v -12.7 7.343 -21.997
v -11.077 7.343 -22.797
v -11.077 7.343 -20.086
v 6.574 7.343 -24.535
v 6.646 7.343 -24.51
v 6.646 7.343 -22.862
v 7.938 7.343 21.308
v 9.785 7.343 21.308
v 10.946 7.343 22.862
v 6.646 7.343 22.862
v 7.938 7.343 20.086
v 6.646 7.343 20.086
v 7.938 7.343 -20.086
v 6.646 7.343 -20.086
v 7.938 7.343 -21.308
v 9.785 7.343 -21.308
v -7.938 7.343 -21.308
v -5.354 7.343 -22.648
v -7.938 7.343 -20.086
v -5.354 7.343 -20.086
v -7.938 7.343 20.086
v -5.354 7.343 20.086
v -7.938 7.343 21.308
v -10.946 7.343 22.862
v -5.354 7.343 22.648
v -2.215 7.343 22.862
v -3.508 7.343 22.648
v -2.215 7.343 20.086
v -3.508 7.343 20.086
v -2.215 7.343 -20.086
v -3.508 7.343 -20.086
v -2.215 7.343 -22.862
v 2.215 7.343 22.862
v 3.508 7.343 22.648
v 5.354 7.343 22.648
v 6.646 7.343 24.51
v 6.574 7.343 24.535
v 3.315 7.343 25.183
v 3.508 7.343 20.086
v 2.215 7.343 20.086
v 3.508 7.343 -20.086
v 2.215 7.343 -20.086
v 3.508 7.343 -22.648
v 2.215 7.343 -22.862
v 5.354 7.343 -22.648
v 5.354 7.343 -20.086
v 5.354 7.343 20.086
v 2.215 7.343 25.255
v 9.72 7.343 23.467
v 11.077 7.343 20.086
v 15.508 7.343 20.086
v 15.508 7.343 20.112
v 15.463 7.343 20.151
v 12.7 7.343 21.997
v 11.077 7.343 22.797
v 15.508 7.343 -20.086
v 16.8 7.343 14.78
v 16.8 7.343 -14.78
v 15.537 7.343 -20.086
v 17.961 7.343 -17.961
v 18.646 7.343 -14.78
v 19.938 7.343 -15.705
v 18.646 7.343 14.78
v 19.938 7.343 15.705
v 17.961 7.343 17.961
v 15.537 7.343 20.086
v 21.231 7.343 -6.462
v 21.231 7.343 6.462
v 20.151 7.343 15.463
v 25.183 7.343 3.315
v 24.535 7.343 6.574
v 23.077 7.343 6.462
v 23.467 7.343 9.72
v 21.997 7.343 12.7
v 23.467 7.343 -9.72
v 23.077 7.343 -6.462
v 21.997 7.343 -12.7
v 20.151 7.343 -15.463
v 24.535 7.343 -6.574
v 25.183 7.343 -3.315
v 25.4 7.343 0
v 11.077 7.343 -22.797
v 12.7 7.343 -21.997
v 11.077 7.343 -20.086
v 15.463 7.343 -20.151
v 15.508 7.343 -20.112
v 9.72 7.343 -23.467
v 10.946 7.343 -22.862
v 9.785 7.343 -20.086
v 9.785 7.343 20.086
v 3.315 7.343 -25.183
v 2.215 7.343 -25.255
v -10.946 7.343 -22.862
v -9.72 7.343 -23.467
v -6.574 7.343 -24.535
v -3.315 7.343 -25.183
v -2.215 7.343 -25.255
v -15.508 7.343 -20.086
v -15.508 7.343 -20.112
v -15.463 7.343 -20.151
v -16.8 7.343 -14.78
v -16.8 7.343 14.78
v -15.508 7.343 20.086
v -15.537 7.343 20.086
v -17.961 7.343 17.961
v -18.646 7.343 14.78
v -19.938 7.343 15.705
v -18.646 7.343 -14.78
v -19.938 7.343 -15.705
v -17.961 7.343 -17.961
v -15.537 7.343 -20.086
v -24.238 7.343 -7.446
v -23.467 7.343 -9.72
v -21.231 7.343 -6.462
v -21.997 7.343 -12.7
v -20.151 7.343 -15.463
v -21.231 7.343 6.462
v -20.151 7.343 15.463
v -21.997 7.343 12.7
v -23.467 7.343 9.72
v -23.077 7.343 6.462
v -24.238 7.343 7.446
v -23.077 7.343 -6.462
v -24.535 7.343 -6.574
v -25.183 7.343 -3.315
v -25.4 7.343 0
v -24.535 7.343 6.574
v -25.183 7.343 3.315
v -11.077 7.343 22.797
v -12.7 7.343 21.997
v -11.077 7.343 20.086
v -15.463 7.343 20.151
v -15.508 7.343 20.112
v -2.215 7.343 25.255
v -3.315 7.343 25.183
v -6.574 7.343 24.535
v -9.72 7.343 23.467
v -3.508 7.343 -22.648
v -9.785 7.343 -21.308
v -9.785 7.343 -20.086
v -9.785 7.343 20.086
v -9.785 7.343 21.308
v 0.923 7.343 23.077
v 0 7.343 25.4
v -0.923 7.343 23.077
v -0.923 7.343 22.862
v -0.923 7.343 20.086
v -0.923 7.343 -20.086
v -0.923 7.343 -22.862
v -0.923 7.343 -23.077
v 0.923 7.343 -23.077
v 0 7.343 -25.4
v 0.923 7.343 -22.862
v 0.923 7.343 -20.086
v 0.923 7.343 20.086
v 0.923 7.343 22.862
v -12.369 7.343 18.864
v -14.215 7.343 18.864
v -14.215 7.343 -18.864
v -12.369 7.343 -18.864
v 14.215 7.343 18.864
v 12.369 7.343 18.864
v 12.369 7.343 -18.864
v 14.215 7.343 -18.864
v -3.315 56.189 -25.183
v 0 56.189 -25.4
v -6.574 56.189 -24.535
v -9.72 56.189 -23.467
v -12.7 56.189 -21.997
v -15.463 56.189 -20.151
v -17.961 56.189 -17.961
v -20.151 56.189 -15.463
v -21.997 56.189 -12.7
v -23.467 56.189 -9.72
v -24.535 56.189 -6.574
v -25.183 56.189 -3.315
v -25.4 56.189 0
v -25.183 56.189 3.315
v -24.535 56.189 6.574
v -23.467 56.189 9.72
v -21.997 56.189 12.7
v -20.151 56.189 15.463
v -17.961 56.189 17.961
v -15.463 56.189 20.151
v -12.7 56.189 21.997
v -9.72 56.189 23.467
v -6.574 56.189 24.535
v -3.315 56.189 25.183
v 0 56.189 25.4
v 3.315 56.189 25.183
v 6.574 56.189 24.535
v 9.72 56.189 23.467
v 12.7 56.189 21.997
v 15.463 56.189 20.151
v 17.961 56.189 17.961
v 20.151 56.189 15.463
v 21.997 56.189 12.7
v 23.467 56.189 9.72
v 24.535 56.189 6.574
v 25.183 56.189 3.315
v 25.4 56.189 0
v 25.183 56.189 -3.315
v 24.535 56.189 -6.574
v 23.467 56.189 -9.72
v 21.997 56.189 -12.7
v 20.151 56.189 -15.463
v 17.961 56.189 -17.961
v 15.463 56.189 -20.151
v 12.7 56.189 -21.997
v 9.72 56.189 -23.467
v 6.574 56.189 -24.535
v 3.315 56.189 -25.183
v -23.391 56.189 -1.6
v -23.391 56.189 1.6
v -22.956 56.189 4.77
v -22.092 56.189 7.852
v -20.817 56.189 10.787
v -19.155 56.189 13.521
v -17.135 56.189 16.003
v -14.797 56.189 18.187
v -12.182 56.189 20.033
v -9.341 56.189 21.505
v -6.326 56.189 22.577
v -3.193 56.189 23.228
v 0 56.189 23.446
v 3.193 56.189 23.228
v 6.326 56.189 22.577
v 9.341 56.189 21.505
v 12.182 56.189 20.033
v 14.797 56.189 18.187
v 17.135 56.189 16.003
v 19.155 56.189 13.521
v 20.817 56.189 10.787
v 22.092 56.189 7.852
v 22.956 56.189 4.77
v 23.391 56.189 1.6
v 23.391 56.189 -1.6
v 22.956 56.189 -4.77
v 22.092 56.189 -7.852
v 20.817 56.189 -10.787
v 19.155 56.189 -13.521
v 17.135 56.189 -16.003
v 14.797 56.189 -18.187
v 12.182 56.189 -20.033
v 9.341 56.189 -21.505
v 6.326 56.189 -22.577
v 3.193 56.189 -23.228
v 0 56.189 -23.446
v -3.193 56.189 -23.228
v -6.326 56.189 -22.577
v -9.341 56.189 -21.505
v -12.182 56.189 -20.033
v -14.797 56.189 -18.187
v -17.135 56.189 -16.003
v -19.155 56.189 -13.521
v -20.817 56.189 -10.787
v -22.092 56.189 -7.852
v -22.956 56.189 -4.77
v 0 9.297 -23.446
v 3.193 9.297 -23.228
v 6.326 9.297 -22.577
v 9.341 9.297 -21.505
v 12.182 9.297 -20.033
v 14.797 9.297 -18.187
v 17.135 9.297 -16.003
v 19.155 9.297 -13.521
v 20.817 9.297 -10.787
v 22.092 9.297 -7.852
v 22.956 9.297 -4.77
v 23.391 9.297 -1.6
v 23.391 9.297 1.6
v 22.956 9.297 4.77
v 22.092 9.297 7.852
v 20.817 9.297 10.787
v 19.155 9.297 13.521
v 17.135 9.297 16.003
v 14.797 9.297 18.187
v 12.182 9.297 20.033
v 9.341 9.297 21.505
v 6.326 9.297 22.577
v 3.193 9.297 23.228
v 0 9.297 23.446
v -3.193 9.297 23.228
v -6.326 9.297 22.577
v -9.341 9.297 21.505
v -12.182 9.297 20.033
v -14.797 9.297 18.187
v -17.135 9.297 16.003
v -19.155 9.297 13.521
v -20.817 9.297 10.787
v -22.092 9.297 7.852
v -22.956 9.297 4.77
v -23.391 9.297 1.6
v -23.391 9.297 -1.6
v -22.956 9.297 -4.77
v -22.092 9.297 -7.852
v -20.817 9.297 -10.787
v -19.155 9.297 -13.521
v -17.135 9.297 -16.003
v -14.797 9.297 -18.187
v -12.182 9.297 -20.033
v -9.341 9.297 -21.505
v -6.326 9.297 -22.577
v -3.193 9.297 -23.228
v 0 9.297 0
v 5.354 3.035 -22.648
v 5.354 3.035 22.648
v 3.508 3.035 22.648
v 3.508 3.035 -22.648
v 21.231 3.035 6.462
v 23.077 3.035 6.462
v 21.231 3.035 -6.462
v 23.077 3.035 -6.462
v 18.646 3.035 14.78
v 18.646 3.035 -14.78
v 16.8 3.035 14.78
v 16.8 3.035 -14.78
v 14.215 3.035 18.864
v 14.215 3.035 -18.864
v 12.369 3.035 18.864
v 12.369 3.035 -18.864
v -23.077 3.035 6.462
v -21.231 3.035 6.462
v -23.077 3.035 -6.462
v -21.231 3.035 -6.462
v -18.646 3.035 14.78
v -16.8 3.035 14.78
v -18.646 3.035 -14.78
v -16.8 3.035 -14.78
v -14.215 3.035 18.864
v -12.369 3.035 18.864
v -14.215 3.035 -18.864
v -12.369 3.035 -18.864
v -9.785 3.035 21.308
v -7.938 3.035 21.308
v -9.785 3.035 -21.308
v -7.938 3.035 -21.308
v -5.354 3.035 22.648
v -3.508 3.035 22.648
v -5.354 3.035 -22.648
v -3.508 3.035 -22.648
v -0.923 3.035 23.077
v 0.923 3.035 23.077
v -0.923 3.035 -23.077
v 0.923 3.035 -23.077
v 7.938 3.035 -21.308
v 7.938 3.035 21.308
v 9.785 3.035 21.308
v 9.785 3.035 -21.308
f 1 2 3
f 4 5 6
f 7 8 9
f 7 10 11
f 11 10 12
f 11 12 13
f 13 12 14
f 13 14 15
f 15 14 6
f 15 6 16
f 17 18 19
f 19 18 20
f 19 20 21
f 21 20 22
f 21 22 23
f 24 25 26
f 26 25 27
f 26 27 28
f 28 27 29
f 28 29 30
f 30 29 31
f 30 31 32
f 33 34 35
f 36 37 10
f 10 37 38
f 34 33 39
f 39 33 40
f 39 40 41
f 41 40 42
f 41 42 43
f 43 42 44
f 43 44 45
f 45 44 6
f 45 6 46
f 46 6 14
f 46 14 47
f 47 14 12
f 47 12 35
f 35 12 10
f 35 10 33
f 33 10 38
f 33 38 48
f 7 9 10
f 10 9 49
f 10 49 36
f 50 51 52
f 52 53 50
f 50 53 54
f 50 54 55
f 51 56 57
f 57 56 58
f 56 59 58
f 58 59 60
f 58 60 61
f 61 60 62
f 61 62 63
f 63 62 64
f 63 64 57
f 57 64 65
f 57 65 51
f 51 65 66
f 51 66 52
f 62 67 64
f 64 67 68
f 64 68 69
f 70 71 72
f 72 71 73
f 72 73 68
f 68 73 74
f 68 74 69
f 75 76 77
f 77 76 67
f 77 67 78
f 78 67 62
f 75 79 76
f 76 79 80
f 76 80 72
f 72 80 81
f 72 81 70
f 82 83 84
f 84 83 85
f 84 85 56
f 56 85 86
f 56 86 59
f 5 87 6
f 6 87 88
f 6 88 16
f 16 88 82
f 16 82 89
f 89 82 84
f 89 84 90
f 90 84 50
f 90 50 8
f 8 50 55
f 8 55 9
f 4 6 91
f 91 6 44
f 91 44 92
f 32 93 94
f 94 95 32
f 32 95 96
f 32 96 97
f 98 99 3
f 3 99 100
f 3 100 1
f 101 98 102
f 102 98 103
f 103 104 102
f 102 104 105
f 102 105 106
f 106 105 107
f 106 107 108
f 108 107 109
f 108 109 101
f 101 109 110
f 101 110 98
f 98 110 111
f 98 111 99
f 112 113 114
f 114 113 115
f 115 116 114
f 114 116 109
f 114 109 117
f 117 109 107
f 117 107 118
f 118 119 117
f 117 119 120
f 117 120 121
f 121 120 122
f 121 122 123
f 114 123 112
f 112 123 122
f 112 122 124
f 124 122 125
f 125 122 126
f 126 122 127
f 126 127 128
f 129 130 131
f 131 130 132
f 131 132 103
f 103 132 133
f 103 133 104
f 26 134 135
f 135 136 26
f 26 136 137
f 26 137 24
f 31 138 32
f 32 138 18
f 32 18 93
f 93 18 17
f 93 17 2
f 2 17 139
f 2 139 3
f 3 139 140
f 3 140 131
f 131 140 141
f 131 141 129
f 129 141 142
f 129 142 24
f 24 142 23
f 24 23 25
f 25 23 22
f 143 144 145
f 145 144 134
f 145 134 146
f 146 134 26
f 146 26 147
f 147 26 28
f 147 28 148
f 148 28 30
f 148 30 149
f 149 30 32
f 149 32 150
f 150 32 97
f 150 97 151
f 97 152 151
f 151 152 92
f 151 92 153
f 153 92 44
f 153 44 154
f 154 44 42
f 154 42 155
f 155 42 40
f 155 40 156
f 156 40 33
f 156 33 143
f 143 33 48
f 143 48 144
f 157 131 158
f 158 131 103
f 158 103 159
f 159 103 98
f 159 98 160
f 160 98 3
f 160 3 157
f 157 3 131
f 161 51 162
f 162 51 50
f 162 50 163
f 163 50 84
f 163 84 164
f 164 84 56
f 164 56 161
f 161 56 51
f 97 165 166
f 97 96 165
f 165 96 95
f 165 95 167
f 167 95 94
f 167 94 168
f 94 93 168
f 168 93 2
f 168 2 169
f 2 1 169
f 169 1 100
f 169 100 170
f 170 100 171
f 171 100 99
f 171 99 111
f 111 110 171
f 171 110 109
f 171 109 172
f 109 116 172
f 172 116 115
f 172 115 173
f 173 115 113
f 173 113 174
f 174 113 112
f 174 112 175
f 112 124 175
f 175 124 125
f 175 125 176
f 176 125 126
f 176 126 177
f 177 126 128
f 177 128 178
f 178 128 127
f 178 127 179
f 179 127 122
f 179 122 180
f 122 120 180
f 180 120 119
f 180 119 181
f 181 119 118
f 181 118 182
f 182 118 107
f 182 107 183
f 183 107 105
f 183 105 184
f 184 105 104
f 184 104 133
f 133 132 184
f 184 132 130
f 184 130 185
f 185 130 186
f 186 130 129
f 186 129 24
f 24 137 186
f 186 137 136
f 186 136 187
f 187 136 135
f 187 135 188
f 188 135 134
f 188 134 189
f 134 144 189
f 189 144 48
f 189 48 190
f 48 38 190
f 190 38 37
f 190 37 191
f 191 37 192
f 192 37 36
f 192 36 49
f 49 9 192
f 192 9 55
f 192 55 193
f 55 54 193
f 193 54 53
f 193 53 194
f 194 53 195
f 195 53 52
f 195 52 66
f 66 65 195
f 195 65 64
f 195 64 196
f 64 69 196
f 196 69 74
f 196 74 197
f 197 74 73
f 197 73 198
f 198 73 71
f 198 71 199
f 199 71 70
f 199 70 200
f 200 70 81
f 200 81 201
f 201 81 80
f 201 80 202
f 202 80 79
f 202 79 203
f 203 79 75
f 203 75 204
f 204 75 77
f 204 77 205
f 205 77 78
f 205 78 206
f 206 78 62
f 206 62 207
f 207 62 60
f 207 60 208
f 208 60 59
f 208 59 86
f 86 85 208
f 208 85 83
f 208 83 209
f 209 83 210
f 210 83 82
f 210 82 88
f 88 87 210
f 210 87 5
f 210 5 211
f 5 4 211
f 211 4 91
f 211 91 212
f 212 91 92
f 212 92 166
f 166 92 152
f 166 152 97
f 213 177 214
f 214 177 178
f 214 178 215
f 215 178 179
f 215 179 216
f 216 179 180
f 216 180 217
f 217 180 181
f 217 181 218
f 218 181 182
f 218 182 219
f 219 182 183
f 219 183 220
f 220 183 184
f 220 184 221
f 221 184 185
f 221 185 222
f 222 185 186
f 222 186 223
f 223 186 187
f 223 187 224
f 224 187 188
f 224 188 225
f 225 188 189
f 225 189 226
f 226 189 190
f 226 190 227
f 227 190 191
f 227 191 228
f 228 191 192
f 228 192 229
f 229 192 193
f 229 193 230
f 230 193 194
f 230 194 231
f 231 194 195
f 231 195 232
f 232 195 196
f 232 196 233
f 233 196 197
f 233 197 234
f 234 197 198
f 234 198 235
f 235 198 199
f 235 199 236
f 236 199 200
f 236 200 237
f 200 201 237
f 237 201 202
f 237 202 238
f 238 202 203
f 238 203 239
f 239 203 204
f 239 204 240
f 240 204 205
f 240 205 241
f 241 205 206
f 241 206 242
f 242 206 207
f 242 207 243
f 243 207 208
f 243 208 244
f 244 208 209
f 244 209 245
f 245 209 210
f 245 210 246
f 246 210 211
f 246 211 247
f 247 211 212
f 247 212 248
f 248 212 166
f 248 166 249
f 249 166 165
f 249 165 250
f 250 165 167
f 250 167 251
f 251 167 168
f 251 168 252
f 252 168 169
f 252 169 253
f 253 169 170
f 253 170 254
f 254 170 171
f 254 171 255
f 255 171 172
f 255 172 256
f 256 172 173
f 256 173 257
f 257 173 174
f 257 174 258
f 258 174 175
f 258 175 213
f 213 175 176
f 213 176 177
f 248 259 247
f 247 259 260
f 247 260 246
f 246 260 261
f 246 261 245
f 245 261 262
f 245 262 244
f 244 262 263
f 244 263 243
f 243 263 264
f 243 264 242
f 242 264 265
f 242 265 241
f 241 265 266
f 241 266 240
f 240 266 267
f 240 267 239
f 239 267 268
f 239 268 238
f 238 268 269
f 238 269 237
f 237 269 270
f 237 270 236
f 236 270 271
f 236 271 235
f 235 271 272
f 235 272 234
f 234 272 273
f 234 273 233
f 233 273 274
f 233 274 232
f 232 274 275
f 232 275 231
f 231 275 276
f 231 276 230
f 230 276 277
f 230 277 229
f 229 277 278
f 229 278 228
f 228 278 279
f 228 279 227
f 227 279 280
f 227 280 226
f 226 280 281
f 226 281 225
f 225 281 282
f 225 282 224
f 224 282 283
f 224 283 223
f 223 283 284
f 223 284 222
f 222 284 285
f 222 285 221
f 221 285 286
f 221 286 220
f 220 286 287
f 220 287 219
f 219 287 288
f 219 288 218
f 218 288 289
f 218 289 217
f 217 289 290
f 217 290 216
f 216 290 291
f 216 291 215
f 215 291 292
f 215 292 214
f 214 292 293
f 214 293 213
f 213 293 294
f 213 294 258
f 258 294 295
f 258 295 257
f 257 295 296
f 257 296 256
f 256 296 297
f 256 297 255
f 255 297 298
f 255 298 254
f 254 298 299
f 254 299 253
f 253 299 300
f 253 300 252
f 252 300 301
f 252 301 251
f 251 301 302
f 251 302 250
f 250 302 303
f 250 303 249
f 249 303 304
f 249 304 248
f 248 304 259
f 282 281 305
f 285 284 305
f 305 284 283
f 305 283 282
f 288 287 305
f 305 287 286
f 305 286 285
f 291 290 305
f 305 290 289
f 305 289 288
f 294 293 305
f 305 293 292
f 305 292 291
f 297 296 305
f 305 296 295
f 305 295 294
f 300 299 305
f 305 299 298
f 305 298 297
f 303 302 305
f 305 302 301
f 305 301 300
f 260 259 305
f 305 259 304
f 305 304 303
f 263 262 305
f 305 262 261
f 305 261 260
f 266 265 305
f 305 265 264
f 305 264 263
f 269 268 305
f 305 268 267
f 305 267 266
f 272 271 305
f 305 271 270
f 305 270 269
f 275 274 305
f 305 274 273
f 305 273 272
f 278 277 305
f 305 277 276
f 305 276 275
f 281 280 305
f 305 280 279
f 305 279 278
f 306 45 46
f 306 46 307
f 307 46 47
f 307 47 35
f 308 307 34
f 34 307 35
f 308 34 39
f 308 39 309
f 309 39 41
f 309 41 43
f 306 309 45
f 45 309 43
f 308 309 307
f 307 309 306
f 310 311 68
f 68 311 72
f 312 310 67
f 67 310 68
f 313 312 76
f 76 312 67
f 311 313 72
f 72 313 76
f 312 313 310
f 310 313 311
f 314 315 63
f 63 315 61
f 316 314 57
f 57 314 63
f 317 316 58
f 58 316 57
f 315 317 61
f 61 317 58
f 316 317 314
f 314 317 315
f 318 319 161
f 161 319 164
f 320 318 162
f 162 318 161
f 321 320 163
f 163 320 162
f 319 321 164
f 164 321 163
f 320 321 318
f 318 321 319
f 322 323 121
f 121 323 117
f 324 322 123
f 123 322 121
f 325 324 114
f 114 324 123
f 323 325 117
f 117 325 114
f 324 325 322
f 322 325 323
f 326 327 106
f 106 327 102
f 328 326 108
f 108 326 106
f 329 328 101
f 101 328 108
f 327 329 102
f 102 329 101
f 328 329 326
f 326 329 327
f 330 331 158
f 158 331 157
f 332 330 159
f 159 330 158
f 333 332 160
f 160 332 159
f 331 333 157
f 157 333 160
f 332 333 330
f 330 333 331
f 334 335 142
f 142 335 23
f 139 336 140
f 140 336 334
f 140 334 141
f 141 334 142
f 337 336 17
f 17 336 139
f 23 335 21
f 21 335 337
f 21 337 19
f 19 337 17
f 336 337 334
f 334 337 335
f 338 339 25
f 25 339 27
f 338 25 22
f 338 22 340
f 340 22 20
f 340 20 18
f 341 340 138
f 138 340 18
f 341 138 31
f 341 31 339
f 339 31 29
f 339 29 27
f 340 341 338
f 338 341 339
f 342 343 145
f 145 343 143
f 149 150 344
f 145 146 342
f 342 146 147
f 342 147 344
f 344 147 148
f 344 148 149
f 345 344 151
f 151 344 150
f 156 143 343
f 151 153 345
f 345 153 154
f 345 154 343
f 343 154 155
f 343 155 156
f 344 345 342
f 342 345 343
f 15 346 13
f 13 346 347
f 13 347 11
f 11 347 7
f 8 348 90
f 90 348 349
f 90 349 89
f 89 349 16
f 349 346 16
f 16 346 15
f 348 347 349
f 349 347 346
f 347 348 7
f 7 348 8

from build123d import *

# Parameters (mm, degrees)
SKETCH1_R           = 38.1
BOSS_EXTRUDE1_DEPTH = 76.2
SHELL2_T            = 3.175
SKETCH2_W           = 3
SKETCH2_H           = 75
SKETCH2_H_2         = 48.033738144
SKETCH2_H_3         = 61.308726948
SKETCH2_H_4         = 69.24998195
SKETCH2_H_5         = 73.60461942
BOSS_EXTRUDE2_DEPTH = 7
SCALE1_SCALE        = 0.615384615


with BuildPart() as part:
    # Sketch1 → Boss-Extrude1 (new body)
    with BuildSketch(Plane(origin=(0, 0, 0), x_dir=(1, 0, 0), z_dir=(0, 1, 0))):
        with Locations(Location((0, 0, 0), (0, 0, 90))):
            Circle(SKETCH1_R)
    extrude(amount=BOSS_EXTRUDE1_DEPTH)

    # Shell2
    shell2_openings = [part.faces().sort_by_distance(p)[0] for p in [
        (0, 76.2, 0),
    ]]
    offset(amount=SHELL2_T, openings=shell2_openings, kind=Kind.INTERSECTION)

    # Sketch2 → Boss-Extrude2 (add)
    with BuildSketch(Plane.XZ.offset(3.175)):
        Rectangle(SKETCH2_W, SKETCH2_H)
        Polygon((-34.5, -10.5), (-34.5, 0), (-34.5, 10.5), (-37.5, 10.5), (-37.5, -10.5), align=None)
        with Locations((-28.8, 0)):
            Rectangle(SKETCH2_W, SKETCH2_H_2)
        with Locations((-21.6, 0)):
            Rectangle(SKETCH2_W, SKETCH2_H_3)
        with Locations((-14.4, 0)):
            Rectangle(SKETCH2_W, SKETCH2_H_4)
        with Locations((-7.2, 0)):
            Rectangle(SKETCH2_W, SKETCH2_H_5)
        Polygon((8.7, -36.80230971), (8.7, 0), (8.7, 36.80230971), (5.7, 36.80230971), (5.7, -36.80230971), align=None)
        with Locations((14.4, 0)):
            Rectangle(SKETCH2_W, SKETCH2_H_4)
        with Locations((21.6, 0)):
            Rectangle(SKETCH2_W, SKETCH2_H_3)
        with Locations((28.8, 0)):
            Rectangle(SKETCH2_W, SKETCH2_H_2)
        Polygon((37.5, -10.5), (37.5, 10.5), (34.5, 10.5), (34.5, 0), (34.5, -10.5), align=None)
    extrude(amount=BOSS_EXTRUDE2_DEPTH)


with BuildPart() as part_1:
    # Scale1: scaled about (0, 24.172158943, 0)
    add(part.part.scale(SCALE1_SCALE).moved(Location((0, 9.296984209, 0))))


solid = part_1.part
